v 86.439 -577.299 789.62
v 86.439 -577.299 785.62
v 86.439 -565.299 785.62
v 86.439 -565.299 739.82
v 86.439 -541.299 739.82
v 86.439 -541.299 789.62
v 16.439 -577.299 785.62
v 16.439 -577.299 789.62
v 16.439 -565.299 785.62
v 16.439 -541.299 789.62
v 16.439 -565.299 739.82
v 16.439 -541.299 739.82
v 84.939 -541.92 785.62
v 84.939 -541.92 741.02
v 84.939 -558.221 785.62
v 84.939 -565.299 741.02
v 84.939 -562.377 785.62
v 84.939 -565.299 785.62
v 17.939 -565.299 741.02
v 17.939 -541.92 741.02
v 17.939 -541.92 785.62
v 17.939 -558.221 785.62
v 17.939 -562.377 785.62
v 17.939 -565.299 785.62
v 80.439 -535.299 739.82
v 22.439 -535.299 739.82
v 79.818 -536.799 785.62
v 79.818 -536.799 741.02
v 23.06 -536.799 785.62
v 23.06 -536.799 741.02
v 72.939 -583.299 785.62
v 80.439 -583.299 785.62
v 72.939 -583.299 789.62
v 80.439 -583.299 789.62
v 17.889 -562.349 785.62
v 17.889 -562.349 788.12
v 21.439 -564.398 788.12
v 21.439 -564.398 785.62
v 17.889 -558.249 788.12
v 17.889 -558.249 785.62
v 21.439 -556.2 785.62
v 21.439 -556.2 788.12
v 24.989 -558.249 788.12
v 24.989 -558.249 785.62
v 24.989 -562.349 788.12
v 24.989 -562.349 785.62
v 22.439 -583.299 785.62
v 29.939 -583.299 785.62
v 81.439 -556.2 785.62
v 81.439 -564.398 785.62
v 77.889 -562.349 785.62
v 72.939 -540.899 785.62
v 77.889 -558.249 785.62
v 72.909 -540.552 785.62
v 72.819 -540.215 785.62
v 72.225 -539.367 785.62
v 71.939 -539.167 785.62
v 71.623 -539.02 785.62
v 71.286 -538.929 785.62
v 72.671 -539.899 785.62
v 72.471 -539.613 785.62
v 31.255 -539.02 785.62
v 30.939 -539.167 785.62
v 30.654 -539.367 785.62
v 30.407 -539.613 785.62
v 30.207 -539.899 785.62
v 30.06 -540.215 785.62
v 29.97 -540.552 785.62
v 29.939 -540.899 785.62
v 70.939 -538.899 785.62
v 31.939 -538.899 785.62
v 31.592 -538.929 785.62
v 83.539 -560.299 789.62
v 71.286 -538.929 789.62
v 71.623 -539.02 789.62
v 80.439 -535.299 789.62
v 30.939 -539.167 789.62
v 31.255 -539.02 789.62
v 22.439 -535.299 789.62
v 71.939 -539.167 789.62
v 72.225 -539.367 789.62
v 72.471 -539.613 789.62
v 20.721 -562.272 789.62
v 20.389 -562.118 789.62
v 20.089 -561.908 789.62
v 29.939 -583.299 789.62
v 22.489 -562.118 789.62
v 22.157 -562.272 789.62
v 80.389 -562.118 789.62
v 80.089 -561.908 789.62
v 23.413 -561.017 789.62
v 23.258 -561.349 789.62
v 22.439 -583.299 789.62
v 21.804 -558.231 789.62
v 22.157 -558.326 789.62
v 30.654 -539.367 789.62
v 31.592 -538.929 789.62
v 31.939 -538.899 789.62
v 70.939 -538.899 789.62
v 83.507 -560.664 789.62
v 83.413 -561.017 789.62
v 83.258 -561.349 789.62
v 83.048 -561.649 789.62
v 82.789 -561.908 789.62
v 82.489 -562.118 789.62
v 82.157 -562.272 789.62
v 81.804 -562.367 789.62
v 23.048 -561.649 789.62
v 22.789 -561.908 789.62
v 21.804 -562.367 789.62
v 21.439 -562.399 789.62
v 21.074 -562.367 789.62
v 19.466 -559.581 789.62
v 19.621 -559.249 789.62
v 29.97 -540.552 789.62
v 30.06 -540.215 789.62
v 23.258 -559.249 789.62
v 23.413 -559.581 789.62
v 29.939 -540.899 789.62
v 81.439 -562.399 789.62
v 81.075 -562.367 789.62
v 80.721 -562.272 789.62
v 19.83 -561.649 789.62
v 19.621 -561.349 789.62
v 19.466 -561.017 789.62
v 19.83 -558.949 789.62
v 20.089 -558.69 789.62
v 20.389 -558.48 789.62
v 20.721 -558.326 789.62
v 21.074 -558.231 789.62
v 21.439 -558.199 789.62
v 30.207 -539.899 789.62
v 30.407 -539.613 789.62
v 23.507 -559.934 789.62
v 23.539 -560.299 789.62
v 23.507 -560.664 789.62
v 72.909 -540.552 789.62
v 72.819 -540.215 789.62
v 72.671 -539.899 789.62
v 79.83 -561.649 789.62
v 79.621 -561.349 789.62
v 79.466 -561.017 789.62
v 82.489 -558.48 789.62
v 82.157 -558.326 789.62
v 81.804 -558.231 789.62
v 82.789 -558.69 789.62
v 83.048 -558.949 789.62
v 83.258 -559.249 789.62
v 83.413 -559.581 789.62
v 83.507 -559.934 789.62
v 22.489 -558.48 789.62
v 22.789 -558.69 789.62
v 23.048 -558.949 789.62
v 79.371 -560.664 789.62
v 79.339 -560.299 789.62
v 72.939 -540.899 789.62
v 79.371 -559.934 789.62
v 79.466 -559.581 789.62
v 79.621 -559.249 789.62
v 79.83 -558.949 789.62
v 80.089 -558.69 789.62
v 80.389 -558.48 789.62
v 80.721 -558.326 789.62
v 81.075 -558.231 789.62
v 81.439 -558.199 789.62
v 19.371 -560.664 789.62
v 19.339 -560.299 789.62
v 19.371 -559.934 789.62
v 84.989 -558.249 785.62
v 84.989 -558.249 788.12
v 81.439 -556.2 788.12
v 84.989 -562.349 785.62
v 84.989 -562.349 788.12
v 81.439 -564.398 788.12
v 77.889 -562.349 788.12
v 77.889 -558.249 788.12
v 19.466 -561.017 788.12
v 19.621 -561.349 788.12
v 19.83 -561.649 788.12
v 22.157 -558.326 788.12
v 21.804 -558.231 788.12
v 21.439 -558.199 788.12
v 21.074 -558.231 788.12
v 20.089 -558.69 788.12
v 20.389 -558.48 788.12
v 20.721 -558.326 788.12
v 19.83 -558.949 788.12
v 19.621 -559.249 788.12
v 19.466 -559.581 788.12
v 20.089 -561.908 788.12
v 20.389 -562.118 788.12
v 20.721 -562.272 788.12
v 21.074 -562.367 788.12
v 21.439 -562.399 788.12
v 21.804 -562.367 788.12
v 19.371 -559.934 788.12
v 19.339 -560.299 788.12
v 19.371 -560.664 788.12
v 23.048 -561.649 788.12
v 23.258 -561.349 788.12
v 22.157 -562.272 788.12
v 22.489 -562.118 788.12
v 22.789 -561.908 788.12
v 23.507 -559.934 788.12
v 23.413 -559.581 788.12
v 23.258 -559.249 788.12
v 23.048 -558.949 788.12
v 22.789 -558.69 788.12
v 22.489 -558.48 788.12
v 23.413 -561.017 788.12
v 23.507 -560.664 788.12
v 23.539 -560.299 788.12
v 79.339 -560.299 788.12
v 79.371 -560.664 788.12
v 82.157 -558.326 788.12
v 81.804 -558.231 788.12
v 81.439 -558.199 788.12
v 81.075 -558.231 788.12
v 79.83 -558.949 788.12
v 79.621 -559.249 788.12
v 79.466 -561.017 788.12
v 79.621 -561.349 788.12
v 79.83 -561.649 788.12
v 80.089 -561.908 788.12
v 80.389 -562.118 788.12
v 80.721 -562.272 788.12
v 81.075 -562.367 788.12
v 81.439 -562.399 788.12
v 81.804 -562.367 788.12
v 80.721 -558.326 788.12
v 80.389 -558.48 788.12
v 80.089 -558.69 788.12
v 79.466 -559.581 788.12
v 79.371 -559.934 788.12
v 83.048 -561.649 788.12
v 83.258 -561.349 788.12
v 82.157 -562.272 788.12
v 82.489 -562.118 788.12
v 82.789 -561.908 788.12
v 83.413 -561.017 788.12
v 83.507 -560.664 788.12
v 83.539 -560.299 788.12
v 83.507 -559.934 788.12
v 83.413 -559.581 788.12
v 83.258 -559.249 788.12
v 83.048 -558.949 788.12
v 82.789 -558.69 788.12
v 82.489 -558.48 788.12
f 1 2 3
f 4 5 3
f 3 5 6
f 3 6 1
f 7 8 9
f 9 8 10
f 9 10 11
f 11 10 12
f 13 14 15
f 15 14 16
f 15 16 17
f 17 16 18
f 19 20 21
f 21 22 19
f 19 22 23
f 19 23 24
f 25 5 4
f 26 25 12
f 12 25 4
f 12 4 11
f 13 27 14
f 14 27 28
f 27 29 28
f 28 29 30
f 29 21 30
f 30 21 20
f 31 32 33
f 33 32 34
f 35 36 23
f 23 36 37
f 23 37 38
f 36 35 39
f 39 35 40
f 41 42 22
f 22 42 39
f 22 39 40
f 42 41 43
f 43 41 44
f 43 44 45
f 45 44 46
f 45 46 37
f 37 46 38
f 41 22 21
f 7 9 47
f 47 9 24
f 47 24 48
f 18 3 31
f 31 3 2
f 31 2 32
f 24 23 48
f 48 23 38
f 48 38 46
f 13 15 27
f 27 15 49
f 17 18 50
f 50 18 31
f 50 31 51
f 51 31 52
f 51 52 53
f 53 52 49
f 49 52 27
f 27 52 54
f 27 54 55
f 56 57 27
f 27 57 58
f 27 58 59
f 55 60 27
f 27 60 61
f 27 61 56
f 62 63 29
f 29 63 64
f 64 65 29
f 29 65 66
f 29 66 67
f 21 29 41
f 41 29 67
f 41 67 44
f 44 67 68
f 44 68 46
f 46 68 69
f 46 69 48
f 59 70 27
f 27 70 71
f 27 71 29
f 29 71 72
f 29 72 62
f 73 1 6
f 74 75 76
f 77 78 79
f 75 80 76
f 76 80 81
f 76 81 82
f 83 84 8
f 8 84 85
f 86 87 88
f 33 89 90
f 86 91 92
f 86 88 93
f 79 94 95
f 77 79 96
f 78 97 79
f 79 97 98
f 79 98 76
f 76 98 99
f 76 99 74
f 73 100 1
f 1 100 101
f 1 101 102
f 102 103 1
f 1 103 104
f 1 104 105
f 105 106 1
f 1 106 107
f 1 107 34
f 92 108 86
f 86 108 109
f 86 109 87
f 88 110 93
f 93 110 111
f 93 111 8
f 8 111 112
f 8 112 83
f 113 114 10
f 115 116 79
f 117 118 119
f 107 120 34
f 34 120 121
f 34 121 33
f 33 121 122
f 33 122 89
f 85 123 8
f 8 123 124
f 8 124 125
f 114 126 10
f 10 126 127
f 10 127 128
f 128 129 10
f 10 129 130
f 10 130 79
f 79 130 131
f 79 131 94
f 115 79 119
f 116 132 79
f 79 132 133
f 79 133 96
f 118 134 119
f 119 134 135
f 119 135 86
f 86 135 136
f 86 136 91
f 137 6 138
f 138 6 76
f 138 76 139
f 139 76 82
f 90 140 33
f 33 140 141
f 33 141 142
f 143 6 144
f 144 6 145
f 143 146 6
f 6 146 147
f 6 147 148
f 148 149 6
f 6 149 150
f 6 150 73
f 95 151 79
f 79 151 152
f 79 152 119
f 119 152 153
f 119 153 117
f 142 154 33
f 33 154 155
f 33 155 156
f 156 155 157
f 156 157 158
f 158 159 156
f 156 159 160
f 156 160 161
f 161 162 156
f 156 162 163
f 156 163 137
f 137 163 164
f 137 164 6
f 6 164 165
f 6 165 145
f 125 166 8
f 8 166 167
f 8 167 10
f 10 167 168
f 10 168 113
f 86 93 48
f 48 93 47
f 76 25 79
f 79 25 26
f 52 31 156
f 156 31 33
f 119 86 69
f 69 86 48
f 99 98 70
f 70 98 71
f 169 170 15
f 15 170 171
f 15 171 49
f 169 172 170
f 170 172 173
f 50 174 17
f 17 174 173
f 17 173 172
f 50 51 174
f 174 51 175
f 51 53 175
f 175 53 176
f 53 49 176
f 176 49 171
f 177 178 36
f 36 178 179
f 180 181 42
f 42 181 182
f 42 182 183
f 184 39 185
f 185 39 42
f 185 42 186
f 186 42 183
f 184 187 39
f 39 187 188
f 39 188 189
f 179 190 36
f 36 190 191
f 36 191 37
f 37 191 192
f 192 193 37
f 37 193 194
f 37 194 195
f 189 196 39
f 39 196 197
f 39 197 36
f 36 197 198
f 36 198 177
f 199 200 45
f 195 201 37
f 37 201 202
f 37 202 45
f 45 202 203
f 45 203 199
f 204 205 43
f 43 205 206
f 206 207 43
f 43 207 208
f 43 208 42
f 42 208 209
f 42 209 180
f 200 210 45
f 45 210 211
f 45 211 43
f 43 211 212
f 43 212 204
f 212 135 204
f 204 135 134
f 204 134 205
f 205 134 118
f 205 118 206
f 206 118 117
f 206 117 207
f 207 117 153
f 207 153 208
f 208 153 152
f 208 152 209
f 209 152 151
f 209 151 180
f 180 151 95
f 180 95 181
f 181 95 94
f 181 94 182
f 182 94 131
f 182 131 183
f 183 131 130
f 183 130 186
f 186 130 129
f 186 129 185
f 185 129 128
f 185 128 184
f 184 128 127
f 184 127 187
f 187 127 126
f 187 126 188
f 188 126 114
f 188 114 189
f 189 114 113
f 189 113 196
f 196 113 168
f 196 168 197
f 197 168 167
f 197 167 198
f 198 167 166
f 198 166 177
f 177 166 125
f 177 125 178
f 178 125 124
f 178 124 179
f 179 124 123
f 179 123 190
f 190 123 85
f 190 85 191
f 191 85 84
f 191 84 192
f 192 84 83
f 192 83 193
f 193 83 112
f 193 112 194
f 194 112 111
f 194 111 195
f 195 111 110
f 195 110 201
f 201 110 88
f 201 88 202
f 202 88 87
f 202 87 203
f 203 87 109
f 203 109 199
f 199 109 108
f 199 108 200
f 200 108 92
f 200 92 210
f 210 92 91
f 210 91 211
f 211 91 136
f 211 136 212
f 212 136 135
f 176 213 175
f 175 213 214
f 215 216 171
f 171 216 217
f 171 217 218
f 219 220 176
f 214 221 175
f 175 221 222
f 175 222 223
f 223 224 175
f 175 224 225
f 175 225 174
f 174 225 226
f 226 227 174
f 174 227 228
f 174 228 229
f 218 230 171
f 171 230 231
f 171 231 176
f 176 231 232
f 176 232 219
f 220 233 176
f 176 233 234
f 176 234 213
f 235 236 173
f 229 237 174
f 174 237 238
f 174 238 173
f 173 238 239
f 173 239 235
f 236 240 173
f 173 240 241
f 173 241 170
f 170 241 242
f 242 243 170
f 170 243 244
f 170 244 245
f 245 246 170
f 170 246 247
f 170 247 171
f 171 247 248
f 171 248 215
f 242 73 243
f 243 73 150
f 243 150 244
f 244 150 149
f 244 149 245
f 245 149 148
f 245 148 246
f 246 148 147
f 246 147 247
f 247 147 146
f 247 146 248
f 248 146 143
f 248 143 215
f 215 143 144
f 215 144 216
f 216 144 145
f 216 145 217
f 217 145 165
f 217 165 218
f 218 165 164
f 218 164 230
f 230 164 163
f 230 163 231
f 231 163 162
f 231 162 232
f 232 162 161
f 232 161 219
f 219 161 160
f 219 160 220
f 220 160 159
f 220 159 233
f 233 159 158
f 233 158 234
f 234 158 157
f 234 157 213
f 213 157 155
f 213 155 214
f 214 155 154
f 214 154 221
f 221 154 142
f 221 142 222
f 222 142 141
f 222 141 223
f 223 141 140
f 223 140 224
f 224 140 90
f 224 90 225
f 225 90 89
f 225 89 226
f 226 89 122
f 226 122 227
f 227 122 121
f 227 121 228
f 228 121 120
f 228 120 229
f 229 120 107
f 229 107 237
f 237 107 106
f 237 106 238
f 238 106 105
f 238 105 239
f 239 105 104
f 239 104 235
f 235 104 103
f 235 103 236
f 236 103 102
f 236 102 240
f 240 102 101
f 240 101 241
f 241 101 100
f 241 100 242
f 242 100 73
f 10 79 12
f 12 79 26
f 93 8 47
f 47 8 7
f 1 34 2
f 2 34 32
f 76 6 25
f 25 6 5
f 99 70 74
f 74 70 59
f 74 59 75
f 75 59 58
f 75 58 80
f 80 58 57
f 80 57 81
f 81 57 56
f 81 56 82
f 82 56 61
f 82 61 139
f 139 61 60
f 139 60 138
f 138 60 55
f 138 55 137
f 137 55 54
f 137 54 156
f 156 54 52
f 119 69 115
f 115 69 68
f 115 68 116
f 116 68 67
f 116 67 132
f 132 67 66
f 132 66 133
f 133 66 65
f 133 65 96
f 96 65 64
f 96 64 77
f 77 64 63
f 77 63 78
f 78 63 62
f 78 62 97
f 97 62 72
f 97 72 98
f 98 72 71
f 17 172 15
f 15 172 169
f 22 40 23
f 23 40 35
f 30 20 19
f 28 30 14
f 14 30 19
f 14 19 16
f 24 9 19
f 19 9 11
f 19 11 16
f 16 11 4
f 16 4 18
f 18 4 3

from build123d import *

# Parameters (mm, degrees)
SKETCH1_W           = 70
SKETCH1_H           = 48
SKETCH1_W_2         = 43
SKETCH1_H_2         = 42.8
BOSS_EXTRUDE1_DEPTH = 4
SKETCH2_W           = 10.268328243
SKETCH2_H           = 48
SKETCH2_R           = 2.1
SKETCH2_W_2         = 10.814622491
BOSS_EXTRUDE2_DEPTH = 1.5
CHAMFER1_SIZE       = 6
FILLET1_R           = 2
SKETCH3_W           = 43
SKETCH3_H           = 7.264710946
CUT_EXTRUDE1_DEPTH  = 10
BOSS_EXTRUDE3_DEPTH = 45.8
BOSS_EXTRUDE4_DEPTH = 1.2
CUT_EXTRUDE2_DEPTH  = 50


with BuildPart() as part:
    # Sketch1 → Boss-Extrude1 (new body)
    with BuildSketch(Plane(origin=(0, 0, 789.620141885), x_dir=(-1, 0, 0), z_dir=(0, 0, -1))):
        with Locations((-51.439156386, -559.298939869)):
            Rectangle(SKETCH1_W, SKETCH1_H)
        with Locations((-51.439156386, -560.298939869)):
            Rectangle(SKETCH1_W_2, SKETCH1_H_2, mode=Mode.SUBTRACT)
        Polygon((-84.989156386, -558.249346414), (-84.989156386, -562.348533325), (-81.439156386, -564.398126781), (-77.889156386, -562.348533325), (-77.889156386, -558.249346414), (-81.439156386, -556.199752958), align=None, mode=Mode.SUBTRACT)
        Polygon((-17.889156386, -562.348533325), (-17.889156386, -558.249346414), (-21.439156386, -556.199752958), (-24.989156386, -558.249346414), (-24.989156386, -562.348533325), (-21.439156386, -564.398126781), align=None, mode=Mode.SUBTRACT)
    extrude(amount=BOSS_EXTRUDE1_DEPTH)

    # Sketch2 → Boss-Extrude2 (add)
    # profile 1 of 2: a face of its own
    with BuildSketch(Plane.XY.offset(789.620141885)):
        with Locations((21.573320508, -559.298939869)):
            Rectangle(SKETCH2_W, SKETCH2_H)
        with Locations((21.439156386, -560.298939869)):
            Circle(SKETCH2_R, mode=Mode.SUBTRACT)
    # profile 2 of 2: a face of its own
    with BuildSketch(Plane.XY.offset(789.620141885)):
        with Locations((81.03184514, -559.298939869)):
            Rectangle(SKETCH2_W_2, SKETCH2_H)
        with Locations((81.439156386, -560.298939869)):
            Circle(SKETCH2_R, mode=Mode.SUBTRACT)
    extrude(amount=-BOSS_EXTRUDE2_DEPTH)

    # Chamfer1
    chamfer1_edges = [part.edges().sort_by_distance(p)[0] for p in [
        (86.439156386, -535.298939869, 787.620141885),
        (16.439156386, -535.298939869, 787.620141885),
        (16.439156386, -583.298939869, 787.620141885),
        (86.439156386, -583.298939869, 787.620141885),
    ]]
    chamfer(chamfer1_edges, length=CHAMFER1_SIZE)

    # Fillet1
    fillet1_edges = [part.edges().sort_by_distance(p)[0] for p in [
        (72.939156386, -538.898939869, 787.620141885),
        (29.939156386, -538.898939869, 787.620141885),
    ]]
    fillet(fillet1_edges, radius=FILLET1_R)

    # Sketch3 → Cut-Extrude1 (cut)
    with BuildSketch(Plane(origin=(0, 0, 785.620141885), x_dir=(-1, 0, 0), z_dir=(0, 0, -1))):
        with Locations((-51.439156386, -585.331295342)):
            Rectangle(SKETCH3_W, SKETCH3_H)
    extrude(amount=-CUT_EXTRUDE1_DEPTH, mode=Mode.SUBTRACT)

    # Sketch4 → Boss-Extrude3 (add)
    with BuildSketch(Plane(origin=(0, 0, 785.620141885), x_dir=(-1, 0, 0), z_dir=(0, 0, -1))):
        Polygon((-86.439156386, -577.298939869), (-86.439156386, -541.298939869), (-80.439156386, -535.298939869), (-22.439156386, -535.298939869), (-16.439156386, -541.298939869), (-16.439156386, -577.298939869), (-17.939156386, -577.298939869), (-17.939156386, -541.920260213), (-23.06047673, -536.798939869), (-79.817836043, -536.798939869), (-84.939156386, -541.920260213), (-84.939156386, -577.298939869), align=None)
    extrude(amount=BOSS_EXTRUDE3_DEPTH)

    # Sketch5 → Boss-Extrude4 (add)
    with BuildSketch(Plane(origin=(0, 0, 739.820141885), x_dir=(-1, 0, 0), z_dir=(0, 0, -1))):
        Polygon((-86.439156386, -559.298939869), (-86.439156386, -541.298939869), (-80.439156386, -535.298939869), (-22.439156386, -535.298939869), (-16.439156386, -541.298939869), (-16.439156386, -559.298939869), (-16.439156386, -565.298939869), (-86.439156386, -565.298939869), align=None)
    extrude(amount=-BOSS_EXTRUDE4_DEPTH)

    # Sketch6 → Cut-Extrude2 (cut)
    with BuildSketch(Plane(origin=(0, 0, 785.620141885), x_dir=(-1, 0, 0), z_dir=(0, 0, -1))):
        Polygon((-17.939156386, -565.298939869), (-100.122525481, -565.298939869), (-100.122525481, -581.771183043), (-17.939156386, -581.771183043), (-3.612614588, -581.771183043), (-3.612614588, -565.298939869), align=None)
    extrude(amount=CUT_EXTRUDE2_DEPTH, mode=Mode.SUBTRACT)


solid = part.part
